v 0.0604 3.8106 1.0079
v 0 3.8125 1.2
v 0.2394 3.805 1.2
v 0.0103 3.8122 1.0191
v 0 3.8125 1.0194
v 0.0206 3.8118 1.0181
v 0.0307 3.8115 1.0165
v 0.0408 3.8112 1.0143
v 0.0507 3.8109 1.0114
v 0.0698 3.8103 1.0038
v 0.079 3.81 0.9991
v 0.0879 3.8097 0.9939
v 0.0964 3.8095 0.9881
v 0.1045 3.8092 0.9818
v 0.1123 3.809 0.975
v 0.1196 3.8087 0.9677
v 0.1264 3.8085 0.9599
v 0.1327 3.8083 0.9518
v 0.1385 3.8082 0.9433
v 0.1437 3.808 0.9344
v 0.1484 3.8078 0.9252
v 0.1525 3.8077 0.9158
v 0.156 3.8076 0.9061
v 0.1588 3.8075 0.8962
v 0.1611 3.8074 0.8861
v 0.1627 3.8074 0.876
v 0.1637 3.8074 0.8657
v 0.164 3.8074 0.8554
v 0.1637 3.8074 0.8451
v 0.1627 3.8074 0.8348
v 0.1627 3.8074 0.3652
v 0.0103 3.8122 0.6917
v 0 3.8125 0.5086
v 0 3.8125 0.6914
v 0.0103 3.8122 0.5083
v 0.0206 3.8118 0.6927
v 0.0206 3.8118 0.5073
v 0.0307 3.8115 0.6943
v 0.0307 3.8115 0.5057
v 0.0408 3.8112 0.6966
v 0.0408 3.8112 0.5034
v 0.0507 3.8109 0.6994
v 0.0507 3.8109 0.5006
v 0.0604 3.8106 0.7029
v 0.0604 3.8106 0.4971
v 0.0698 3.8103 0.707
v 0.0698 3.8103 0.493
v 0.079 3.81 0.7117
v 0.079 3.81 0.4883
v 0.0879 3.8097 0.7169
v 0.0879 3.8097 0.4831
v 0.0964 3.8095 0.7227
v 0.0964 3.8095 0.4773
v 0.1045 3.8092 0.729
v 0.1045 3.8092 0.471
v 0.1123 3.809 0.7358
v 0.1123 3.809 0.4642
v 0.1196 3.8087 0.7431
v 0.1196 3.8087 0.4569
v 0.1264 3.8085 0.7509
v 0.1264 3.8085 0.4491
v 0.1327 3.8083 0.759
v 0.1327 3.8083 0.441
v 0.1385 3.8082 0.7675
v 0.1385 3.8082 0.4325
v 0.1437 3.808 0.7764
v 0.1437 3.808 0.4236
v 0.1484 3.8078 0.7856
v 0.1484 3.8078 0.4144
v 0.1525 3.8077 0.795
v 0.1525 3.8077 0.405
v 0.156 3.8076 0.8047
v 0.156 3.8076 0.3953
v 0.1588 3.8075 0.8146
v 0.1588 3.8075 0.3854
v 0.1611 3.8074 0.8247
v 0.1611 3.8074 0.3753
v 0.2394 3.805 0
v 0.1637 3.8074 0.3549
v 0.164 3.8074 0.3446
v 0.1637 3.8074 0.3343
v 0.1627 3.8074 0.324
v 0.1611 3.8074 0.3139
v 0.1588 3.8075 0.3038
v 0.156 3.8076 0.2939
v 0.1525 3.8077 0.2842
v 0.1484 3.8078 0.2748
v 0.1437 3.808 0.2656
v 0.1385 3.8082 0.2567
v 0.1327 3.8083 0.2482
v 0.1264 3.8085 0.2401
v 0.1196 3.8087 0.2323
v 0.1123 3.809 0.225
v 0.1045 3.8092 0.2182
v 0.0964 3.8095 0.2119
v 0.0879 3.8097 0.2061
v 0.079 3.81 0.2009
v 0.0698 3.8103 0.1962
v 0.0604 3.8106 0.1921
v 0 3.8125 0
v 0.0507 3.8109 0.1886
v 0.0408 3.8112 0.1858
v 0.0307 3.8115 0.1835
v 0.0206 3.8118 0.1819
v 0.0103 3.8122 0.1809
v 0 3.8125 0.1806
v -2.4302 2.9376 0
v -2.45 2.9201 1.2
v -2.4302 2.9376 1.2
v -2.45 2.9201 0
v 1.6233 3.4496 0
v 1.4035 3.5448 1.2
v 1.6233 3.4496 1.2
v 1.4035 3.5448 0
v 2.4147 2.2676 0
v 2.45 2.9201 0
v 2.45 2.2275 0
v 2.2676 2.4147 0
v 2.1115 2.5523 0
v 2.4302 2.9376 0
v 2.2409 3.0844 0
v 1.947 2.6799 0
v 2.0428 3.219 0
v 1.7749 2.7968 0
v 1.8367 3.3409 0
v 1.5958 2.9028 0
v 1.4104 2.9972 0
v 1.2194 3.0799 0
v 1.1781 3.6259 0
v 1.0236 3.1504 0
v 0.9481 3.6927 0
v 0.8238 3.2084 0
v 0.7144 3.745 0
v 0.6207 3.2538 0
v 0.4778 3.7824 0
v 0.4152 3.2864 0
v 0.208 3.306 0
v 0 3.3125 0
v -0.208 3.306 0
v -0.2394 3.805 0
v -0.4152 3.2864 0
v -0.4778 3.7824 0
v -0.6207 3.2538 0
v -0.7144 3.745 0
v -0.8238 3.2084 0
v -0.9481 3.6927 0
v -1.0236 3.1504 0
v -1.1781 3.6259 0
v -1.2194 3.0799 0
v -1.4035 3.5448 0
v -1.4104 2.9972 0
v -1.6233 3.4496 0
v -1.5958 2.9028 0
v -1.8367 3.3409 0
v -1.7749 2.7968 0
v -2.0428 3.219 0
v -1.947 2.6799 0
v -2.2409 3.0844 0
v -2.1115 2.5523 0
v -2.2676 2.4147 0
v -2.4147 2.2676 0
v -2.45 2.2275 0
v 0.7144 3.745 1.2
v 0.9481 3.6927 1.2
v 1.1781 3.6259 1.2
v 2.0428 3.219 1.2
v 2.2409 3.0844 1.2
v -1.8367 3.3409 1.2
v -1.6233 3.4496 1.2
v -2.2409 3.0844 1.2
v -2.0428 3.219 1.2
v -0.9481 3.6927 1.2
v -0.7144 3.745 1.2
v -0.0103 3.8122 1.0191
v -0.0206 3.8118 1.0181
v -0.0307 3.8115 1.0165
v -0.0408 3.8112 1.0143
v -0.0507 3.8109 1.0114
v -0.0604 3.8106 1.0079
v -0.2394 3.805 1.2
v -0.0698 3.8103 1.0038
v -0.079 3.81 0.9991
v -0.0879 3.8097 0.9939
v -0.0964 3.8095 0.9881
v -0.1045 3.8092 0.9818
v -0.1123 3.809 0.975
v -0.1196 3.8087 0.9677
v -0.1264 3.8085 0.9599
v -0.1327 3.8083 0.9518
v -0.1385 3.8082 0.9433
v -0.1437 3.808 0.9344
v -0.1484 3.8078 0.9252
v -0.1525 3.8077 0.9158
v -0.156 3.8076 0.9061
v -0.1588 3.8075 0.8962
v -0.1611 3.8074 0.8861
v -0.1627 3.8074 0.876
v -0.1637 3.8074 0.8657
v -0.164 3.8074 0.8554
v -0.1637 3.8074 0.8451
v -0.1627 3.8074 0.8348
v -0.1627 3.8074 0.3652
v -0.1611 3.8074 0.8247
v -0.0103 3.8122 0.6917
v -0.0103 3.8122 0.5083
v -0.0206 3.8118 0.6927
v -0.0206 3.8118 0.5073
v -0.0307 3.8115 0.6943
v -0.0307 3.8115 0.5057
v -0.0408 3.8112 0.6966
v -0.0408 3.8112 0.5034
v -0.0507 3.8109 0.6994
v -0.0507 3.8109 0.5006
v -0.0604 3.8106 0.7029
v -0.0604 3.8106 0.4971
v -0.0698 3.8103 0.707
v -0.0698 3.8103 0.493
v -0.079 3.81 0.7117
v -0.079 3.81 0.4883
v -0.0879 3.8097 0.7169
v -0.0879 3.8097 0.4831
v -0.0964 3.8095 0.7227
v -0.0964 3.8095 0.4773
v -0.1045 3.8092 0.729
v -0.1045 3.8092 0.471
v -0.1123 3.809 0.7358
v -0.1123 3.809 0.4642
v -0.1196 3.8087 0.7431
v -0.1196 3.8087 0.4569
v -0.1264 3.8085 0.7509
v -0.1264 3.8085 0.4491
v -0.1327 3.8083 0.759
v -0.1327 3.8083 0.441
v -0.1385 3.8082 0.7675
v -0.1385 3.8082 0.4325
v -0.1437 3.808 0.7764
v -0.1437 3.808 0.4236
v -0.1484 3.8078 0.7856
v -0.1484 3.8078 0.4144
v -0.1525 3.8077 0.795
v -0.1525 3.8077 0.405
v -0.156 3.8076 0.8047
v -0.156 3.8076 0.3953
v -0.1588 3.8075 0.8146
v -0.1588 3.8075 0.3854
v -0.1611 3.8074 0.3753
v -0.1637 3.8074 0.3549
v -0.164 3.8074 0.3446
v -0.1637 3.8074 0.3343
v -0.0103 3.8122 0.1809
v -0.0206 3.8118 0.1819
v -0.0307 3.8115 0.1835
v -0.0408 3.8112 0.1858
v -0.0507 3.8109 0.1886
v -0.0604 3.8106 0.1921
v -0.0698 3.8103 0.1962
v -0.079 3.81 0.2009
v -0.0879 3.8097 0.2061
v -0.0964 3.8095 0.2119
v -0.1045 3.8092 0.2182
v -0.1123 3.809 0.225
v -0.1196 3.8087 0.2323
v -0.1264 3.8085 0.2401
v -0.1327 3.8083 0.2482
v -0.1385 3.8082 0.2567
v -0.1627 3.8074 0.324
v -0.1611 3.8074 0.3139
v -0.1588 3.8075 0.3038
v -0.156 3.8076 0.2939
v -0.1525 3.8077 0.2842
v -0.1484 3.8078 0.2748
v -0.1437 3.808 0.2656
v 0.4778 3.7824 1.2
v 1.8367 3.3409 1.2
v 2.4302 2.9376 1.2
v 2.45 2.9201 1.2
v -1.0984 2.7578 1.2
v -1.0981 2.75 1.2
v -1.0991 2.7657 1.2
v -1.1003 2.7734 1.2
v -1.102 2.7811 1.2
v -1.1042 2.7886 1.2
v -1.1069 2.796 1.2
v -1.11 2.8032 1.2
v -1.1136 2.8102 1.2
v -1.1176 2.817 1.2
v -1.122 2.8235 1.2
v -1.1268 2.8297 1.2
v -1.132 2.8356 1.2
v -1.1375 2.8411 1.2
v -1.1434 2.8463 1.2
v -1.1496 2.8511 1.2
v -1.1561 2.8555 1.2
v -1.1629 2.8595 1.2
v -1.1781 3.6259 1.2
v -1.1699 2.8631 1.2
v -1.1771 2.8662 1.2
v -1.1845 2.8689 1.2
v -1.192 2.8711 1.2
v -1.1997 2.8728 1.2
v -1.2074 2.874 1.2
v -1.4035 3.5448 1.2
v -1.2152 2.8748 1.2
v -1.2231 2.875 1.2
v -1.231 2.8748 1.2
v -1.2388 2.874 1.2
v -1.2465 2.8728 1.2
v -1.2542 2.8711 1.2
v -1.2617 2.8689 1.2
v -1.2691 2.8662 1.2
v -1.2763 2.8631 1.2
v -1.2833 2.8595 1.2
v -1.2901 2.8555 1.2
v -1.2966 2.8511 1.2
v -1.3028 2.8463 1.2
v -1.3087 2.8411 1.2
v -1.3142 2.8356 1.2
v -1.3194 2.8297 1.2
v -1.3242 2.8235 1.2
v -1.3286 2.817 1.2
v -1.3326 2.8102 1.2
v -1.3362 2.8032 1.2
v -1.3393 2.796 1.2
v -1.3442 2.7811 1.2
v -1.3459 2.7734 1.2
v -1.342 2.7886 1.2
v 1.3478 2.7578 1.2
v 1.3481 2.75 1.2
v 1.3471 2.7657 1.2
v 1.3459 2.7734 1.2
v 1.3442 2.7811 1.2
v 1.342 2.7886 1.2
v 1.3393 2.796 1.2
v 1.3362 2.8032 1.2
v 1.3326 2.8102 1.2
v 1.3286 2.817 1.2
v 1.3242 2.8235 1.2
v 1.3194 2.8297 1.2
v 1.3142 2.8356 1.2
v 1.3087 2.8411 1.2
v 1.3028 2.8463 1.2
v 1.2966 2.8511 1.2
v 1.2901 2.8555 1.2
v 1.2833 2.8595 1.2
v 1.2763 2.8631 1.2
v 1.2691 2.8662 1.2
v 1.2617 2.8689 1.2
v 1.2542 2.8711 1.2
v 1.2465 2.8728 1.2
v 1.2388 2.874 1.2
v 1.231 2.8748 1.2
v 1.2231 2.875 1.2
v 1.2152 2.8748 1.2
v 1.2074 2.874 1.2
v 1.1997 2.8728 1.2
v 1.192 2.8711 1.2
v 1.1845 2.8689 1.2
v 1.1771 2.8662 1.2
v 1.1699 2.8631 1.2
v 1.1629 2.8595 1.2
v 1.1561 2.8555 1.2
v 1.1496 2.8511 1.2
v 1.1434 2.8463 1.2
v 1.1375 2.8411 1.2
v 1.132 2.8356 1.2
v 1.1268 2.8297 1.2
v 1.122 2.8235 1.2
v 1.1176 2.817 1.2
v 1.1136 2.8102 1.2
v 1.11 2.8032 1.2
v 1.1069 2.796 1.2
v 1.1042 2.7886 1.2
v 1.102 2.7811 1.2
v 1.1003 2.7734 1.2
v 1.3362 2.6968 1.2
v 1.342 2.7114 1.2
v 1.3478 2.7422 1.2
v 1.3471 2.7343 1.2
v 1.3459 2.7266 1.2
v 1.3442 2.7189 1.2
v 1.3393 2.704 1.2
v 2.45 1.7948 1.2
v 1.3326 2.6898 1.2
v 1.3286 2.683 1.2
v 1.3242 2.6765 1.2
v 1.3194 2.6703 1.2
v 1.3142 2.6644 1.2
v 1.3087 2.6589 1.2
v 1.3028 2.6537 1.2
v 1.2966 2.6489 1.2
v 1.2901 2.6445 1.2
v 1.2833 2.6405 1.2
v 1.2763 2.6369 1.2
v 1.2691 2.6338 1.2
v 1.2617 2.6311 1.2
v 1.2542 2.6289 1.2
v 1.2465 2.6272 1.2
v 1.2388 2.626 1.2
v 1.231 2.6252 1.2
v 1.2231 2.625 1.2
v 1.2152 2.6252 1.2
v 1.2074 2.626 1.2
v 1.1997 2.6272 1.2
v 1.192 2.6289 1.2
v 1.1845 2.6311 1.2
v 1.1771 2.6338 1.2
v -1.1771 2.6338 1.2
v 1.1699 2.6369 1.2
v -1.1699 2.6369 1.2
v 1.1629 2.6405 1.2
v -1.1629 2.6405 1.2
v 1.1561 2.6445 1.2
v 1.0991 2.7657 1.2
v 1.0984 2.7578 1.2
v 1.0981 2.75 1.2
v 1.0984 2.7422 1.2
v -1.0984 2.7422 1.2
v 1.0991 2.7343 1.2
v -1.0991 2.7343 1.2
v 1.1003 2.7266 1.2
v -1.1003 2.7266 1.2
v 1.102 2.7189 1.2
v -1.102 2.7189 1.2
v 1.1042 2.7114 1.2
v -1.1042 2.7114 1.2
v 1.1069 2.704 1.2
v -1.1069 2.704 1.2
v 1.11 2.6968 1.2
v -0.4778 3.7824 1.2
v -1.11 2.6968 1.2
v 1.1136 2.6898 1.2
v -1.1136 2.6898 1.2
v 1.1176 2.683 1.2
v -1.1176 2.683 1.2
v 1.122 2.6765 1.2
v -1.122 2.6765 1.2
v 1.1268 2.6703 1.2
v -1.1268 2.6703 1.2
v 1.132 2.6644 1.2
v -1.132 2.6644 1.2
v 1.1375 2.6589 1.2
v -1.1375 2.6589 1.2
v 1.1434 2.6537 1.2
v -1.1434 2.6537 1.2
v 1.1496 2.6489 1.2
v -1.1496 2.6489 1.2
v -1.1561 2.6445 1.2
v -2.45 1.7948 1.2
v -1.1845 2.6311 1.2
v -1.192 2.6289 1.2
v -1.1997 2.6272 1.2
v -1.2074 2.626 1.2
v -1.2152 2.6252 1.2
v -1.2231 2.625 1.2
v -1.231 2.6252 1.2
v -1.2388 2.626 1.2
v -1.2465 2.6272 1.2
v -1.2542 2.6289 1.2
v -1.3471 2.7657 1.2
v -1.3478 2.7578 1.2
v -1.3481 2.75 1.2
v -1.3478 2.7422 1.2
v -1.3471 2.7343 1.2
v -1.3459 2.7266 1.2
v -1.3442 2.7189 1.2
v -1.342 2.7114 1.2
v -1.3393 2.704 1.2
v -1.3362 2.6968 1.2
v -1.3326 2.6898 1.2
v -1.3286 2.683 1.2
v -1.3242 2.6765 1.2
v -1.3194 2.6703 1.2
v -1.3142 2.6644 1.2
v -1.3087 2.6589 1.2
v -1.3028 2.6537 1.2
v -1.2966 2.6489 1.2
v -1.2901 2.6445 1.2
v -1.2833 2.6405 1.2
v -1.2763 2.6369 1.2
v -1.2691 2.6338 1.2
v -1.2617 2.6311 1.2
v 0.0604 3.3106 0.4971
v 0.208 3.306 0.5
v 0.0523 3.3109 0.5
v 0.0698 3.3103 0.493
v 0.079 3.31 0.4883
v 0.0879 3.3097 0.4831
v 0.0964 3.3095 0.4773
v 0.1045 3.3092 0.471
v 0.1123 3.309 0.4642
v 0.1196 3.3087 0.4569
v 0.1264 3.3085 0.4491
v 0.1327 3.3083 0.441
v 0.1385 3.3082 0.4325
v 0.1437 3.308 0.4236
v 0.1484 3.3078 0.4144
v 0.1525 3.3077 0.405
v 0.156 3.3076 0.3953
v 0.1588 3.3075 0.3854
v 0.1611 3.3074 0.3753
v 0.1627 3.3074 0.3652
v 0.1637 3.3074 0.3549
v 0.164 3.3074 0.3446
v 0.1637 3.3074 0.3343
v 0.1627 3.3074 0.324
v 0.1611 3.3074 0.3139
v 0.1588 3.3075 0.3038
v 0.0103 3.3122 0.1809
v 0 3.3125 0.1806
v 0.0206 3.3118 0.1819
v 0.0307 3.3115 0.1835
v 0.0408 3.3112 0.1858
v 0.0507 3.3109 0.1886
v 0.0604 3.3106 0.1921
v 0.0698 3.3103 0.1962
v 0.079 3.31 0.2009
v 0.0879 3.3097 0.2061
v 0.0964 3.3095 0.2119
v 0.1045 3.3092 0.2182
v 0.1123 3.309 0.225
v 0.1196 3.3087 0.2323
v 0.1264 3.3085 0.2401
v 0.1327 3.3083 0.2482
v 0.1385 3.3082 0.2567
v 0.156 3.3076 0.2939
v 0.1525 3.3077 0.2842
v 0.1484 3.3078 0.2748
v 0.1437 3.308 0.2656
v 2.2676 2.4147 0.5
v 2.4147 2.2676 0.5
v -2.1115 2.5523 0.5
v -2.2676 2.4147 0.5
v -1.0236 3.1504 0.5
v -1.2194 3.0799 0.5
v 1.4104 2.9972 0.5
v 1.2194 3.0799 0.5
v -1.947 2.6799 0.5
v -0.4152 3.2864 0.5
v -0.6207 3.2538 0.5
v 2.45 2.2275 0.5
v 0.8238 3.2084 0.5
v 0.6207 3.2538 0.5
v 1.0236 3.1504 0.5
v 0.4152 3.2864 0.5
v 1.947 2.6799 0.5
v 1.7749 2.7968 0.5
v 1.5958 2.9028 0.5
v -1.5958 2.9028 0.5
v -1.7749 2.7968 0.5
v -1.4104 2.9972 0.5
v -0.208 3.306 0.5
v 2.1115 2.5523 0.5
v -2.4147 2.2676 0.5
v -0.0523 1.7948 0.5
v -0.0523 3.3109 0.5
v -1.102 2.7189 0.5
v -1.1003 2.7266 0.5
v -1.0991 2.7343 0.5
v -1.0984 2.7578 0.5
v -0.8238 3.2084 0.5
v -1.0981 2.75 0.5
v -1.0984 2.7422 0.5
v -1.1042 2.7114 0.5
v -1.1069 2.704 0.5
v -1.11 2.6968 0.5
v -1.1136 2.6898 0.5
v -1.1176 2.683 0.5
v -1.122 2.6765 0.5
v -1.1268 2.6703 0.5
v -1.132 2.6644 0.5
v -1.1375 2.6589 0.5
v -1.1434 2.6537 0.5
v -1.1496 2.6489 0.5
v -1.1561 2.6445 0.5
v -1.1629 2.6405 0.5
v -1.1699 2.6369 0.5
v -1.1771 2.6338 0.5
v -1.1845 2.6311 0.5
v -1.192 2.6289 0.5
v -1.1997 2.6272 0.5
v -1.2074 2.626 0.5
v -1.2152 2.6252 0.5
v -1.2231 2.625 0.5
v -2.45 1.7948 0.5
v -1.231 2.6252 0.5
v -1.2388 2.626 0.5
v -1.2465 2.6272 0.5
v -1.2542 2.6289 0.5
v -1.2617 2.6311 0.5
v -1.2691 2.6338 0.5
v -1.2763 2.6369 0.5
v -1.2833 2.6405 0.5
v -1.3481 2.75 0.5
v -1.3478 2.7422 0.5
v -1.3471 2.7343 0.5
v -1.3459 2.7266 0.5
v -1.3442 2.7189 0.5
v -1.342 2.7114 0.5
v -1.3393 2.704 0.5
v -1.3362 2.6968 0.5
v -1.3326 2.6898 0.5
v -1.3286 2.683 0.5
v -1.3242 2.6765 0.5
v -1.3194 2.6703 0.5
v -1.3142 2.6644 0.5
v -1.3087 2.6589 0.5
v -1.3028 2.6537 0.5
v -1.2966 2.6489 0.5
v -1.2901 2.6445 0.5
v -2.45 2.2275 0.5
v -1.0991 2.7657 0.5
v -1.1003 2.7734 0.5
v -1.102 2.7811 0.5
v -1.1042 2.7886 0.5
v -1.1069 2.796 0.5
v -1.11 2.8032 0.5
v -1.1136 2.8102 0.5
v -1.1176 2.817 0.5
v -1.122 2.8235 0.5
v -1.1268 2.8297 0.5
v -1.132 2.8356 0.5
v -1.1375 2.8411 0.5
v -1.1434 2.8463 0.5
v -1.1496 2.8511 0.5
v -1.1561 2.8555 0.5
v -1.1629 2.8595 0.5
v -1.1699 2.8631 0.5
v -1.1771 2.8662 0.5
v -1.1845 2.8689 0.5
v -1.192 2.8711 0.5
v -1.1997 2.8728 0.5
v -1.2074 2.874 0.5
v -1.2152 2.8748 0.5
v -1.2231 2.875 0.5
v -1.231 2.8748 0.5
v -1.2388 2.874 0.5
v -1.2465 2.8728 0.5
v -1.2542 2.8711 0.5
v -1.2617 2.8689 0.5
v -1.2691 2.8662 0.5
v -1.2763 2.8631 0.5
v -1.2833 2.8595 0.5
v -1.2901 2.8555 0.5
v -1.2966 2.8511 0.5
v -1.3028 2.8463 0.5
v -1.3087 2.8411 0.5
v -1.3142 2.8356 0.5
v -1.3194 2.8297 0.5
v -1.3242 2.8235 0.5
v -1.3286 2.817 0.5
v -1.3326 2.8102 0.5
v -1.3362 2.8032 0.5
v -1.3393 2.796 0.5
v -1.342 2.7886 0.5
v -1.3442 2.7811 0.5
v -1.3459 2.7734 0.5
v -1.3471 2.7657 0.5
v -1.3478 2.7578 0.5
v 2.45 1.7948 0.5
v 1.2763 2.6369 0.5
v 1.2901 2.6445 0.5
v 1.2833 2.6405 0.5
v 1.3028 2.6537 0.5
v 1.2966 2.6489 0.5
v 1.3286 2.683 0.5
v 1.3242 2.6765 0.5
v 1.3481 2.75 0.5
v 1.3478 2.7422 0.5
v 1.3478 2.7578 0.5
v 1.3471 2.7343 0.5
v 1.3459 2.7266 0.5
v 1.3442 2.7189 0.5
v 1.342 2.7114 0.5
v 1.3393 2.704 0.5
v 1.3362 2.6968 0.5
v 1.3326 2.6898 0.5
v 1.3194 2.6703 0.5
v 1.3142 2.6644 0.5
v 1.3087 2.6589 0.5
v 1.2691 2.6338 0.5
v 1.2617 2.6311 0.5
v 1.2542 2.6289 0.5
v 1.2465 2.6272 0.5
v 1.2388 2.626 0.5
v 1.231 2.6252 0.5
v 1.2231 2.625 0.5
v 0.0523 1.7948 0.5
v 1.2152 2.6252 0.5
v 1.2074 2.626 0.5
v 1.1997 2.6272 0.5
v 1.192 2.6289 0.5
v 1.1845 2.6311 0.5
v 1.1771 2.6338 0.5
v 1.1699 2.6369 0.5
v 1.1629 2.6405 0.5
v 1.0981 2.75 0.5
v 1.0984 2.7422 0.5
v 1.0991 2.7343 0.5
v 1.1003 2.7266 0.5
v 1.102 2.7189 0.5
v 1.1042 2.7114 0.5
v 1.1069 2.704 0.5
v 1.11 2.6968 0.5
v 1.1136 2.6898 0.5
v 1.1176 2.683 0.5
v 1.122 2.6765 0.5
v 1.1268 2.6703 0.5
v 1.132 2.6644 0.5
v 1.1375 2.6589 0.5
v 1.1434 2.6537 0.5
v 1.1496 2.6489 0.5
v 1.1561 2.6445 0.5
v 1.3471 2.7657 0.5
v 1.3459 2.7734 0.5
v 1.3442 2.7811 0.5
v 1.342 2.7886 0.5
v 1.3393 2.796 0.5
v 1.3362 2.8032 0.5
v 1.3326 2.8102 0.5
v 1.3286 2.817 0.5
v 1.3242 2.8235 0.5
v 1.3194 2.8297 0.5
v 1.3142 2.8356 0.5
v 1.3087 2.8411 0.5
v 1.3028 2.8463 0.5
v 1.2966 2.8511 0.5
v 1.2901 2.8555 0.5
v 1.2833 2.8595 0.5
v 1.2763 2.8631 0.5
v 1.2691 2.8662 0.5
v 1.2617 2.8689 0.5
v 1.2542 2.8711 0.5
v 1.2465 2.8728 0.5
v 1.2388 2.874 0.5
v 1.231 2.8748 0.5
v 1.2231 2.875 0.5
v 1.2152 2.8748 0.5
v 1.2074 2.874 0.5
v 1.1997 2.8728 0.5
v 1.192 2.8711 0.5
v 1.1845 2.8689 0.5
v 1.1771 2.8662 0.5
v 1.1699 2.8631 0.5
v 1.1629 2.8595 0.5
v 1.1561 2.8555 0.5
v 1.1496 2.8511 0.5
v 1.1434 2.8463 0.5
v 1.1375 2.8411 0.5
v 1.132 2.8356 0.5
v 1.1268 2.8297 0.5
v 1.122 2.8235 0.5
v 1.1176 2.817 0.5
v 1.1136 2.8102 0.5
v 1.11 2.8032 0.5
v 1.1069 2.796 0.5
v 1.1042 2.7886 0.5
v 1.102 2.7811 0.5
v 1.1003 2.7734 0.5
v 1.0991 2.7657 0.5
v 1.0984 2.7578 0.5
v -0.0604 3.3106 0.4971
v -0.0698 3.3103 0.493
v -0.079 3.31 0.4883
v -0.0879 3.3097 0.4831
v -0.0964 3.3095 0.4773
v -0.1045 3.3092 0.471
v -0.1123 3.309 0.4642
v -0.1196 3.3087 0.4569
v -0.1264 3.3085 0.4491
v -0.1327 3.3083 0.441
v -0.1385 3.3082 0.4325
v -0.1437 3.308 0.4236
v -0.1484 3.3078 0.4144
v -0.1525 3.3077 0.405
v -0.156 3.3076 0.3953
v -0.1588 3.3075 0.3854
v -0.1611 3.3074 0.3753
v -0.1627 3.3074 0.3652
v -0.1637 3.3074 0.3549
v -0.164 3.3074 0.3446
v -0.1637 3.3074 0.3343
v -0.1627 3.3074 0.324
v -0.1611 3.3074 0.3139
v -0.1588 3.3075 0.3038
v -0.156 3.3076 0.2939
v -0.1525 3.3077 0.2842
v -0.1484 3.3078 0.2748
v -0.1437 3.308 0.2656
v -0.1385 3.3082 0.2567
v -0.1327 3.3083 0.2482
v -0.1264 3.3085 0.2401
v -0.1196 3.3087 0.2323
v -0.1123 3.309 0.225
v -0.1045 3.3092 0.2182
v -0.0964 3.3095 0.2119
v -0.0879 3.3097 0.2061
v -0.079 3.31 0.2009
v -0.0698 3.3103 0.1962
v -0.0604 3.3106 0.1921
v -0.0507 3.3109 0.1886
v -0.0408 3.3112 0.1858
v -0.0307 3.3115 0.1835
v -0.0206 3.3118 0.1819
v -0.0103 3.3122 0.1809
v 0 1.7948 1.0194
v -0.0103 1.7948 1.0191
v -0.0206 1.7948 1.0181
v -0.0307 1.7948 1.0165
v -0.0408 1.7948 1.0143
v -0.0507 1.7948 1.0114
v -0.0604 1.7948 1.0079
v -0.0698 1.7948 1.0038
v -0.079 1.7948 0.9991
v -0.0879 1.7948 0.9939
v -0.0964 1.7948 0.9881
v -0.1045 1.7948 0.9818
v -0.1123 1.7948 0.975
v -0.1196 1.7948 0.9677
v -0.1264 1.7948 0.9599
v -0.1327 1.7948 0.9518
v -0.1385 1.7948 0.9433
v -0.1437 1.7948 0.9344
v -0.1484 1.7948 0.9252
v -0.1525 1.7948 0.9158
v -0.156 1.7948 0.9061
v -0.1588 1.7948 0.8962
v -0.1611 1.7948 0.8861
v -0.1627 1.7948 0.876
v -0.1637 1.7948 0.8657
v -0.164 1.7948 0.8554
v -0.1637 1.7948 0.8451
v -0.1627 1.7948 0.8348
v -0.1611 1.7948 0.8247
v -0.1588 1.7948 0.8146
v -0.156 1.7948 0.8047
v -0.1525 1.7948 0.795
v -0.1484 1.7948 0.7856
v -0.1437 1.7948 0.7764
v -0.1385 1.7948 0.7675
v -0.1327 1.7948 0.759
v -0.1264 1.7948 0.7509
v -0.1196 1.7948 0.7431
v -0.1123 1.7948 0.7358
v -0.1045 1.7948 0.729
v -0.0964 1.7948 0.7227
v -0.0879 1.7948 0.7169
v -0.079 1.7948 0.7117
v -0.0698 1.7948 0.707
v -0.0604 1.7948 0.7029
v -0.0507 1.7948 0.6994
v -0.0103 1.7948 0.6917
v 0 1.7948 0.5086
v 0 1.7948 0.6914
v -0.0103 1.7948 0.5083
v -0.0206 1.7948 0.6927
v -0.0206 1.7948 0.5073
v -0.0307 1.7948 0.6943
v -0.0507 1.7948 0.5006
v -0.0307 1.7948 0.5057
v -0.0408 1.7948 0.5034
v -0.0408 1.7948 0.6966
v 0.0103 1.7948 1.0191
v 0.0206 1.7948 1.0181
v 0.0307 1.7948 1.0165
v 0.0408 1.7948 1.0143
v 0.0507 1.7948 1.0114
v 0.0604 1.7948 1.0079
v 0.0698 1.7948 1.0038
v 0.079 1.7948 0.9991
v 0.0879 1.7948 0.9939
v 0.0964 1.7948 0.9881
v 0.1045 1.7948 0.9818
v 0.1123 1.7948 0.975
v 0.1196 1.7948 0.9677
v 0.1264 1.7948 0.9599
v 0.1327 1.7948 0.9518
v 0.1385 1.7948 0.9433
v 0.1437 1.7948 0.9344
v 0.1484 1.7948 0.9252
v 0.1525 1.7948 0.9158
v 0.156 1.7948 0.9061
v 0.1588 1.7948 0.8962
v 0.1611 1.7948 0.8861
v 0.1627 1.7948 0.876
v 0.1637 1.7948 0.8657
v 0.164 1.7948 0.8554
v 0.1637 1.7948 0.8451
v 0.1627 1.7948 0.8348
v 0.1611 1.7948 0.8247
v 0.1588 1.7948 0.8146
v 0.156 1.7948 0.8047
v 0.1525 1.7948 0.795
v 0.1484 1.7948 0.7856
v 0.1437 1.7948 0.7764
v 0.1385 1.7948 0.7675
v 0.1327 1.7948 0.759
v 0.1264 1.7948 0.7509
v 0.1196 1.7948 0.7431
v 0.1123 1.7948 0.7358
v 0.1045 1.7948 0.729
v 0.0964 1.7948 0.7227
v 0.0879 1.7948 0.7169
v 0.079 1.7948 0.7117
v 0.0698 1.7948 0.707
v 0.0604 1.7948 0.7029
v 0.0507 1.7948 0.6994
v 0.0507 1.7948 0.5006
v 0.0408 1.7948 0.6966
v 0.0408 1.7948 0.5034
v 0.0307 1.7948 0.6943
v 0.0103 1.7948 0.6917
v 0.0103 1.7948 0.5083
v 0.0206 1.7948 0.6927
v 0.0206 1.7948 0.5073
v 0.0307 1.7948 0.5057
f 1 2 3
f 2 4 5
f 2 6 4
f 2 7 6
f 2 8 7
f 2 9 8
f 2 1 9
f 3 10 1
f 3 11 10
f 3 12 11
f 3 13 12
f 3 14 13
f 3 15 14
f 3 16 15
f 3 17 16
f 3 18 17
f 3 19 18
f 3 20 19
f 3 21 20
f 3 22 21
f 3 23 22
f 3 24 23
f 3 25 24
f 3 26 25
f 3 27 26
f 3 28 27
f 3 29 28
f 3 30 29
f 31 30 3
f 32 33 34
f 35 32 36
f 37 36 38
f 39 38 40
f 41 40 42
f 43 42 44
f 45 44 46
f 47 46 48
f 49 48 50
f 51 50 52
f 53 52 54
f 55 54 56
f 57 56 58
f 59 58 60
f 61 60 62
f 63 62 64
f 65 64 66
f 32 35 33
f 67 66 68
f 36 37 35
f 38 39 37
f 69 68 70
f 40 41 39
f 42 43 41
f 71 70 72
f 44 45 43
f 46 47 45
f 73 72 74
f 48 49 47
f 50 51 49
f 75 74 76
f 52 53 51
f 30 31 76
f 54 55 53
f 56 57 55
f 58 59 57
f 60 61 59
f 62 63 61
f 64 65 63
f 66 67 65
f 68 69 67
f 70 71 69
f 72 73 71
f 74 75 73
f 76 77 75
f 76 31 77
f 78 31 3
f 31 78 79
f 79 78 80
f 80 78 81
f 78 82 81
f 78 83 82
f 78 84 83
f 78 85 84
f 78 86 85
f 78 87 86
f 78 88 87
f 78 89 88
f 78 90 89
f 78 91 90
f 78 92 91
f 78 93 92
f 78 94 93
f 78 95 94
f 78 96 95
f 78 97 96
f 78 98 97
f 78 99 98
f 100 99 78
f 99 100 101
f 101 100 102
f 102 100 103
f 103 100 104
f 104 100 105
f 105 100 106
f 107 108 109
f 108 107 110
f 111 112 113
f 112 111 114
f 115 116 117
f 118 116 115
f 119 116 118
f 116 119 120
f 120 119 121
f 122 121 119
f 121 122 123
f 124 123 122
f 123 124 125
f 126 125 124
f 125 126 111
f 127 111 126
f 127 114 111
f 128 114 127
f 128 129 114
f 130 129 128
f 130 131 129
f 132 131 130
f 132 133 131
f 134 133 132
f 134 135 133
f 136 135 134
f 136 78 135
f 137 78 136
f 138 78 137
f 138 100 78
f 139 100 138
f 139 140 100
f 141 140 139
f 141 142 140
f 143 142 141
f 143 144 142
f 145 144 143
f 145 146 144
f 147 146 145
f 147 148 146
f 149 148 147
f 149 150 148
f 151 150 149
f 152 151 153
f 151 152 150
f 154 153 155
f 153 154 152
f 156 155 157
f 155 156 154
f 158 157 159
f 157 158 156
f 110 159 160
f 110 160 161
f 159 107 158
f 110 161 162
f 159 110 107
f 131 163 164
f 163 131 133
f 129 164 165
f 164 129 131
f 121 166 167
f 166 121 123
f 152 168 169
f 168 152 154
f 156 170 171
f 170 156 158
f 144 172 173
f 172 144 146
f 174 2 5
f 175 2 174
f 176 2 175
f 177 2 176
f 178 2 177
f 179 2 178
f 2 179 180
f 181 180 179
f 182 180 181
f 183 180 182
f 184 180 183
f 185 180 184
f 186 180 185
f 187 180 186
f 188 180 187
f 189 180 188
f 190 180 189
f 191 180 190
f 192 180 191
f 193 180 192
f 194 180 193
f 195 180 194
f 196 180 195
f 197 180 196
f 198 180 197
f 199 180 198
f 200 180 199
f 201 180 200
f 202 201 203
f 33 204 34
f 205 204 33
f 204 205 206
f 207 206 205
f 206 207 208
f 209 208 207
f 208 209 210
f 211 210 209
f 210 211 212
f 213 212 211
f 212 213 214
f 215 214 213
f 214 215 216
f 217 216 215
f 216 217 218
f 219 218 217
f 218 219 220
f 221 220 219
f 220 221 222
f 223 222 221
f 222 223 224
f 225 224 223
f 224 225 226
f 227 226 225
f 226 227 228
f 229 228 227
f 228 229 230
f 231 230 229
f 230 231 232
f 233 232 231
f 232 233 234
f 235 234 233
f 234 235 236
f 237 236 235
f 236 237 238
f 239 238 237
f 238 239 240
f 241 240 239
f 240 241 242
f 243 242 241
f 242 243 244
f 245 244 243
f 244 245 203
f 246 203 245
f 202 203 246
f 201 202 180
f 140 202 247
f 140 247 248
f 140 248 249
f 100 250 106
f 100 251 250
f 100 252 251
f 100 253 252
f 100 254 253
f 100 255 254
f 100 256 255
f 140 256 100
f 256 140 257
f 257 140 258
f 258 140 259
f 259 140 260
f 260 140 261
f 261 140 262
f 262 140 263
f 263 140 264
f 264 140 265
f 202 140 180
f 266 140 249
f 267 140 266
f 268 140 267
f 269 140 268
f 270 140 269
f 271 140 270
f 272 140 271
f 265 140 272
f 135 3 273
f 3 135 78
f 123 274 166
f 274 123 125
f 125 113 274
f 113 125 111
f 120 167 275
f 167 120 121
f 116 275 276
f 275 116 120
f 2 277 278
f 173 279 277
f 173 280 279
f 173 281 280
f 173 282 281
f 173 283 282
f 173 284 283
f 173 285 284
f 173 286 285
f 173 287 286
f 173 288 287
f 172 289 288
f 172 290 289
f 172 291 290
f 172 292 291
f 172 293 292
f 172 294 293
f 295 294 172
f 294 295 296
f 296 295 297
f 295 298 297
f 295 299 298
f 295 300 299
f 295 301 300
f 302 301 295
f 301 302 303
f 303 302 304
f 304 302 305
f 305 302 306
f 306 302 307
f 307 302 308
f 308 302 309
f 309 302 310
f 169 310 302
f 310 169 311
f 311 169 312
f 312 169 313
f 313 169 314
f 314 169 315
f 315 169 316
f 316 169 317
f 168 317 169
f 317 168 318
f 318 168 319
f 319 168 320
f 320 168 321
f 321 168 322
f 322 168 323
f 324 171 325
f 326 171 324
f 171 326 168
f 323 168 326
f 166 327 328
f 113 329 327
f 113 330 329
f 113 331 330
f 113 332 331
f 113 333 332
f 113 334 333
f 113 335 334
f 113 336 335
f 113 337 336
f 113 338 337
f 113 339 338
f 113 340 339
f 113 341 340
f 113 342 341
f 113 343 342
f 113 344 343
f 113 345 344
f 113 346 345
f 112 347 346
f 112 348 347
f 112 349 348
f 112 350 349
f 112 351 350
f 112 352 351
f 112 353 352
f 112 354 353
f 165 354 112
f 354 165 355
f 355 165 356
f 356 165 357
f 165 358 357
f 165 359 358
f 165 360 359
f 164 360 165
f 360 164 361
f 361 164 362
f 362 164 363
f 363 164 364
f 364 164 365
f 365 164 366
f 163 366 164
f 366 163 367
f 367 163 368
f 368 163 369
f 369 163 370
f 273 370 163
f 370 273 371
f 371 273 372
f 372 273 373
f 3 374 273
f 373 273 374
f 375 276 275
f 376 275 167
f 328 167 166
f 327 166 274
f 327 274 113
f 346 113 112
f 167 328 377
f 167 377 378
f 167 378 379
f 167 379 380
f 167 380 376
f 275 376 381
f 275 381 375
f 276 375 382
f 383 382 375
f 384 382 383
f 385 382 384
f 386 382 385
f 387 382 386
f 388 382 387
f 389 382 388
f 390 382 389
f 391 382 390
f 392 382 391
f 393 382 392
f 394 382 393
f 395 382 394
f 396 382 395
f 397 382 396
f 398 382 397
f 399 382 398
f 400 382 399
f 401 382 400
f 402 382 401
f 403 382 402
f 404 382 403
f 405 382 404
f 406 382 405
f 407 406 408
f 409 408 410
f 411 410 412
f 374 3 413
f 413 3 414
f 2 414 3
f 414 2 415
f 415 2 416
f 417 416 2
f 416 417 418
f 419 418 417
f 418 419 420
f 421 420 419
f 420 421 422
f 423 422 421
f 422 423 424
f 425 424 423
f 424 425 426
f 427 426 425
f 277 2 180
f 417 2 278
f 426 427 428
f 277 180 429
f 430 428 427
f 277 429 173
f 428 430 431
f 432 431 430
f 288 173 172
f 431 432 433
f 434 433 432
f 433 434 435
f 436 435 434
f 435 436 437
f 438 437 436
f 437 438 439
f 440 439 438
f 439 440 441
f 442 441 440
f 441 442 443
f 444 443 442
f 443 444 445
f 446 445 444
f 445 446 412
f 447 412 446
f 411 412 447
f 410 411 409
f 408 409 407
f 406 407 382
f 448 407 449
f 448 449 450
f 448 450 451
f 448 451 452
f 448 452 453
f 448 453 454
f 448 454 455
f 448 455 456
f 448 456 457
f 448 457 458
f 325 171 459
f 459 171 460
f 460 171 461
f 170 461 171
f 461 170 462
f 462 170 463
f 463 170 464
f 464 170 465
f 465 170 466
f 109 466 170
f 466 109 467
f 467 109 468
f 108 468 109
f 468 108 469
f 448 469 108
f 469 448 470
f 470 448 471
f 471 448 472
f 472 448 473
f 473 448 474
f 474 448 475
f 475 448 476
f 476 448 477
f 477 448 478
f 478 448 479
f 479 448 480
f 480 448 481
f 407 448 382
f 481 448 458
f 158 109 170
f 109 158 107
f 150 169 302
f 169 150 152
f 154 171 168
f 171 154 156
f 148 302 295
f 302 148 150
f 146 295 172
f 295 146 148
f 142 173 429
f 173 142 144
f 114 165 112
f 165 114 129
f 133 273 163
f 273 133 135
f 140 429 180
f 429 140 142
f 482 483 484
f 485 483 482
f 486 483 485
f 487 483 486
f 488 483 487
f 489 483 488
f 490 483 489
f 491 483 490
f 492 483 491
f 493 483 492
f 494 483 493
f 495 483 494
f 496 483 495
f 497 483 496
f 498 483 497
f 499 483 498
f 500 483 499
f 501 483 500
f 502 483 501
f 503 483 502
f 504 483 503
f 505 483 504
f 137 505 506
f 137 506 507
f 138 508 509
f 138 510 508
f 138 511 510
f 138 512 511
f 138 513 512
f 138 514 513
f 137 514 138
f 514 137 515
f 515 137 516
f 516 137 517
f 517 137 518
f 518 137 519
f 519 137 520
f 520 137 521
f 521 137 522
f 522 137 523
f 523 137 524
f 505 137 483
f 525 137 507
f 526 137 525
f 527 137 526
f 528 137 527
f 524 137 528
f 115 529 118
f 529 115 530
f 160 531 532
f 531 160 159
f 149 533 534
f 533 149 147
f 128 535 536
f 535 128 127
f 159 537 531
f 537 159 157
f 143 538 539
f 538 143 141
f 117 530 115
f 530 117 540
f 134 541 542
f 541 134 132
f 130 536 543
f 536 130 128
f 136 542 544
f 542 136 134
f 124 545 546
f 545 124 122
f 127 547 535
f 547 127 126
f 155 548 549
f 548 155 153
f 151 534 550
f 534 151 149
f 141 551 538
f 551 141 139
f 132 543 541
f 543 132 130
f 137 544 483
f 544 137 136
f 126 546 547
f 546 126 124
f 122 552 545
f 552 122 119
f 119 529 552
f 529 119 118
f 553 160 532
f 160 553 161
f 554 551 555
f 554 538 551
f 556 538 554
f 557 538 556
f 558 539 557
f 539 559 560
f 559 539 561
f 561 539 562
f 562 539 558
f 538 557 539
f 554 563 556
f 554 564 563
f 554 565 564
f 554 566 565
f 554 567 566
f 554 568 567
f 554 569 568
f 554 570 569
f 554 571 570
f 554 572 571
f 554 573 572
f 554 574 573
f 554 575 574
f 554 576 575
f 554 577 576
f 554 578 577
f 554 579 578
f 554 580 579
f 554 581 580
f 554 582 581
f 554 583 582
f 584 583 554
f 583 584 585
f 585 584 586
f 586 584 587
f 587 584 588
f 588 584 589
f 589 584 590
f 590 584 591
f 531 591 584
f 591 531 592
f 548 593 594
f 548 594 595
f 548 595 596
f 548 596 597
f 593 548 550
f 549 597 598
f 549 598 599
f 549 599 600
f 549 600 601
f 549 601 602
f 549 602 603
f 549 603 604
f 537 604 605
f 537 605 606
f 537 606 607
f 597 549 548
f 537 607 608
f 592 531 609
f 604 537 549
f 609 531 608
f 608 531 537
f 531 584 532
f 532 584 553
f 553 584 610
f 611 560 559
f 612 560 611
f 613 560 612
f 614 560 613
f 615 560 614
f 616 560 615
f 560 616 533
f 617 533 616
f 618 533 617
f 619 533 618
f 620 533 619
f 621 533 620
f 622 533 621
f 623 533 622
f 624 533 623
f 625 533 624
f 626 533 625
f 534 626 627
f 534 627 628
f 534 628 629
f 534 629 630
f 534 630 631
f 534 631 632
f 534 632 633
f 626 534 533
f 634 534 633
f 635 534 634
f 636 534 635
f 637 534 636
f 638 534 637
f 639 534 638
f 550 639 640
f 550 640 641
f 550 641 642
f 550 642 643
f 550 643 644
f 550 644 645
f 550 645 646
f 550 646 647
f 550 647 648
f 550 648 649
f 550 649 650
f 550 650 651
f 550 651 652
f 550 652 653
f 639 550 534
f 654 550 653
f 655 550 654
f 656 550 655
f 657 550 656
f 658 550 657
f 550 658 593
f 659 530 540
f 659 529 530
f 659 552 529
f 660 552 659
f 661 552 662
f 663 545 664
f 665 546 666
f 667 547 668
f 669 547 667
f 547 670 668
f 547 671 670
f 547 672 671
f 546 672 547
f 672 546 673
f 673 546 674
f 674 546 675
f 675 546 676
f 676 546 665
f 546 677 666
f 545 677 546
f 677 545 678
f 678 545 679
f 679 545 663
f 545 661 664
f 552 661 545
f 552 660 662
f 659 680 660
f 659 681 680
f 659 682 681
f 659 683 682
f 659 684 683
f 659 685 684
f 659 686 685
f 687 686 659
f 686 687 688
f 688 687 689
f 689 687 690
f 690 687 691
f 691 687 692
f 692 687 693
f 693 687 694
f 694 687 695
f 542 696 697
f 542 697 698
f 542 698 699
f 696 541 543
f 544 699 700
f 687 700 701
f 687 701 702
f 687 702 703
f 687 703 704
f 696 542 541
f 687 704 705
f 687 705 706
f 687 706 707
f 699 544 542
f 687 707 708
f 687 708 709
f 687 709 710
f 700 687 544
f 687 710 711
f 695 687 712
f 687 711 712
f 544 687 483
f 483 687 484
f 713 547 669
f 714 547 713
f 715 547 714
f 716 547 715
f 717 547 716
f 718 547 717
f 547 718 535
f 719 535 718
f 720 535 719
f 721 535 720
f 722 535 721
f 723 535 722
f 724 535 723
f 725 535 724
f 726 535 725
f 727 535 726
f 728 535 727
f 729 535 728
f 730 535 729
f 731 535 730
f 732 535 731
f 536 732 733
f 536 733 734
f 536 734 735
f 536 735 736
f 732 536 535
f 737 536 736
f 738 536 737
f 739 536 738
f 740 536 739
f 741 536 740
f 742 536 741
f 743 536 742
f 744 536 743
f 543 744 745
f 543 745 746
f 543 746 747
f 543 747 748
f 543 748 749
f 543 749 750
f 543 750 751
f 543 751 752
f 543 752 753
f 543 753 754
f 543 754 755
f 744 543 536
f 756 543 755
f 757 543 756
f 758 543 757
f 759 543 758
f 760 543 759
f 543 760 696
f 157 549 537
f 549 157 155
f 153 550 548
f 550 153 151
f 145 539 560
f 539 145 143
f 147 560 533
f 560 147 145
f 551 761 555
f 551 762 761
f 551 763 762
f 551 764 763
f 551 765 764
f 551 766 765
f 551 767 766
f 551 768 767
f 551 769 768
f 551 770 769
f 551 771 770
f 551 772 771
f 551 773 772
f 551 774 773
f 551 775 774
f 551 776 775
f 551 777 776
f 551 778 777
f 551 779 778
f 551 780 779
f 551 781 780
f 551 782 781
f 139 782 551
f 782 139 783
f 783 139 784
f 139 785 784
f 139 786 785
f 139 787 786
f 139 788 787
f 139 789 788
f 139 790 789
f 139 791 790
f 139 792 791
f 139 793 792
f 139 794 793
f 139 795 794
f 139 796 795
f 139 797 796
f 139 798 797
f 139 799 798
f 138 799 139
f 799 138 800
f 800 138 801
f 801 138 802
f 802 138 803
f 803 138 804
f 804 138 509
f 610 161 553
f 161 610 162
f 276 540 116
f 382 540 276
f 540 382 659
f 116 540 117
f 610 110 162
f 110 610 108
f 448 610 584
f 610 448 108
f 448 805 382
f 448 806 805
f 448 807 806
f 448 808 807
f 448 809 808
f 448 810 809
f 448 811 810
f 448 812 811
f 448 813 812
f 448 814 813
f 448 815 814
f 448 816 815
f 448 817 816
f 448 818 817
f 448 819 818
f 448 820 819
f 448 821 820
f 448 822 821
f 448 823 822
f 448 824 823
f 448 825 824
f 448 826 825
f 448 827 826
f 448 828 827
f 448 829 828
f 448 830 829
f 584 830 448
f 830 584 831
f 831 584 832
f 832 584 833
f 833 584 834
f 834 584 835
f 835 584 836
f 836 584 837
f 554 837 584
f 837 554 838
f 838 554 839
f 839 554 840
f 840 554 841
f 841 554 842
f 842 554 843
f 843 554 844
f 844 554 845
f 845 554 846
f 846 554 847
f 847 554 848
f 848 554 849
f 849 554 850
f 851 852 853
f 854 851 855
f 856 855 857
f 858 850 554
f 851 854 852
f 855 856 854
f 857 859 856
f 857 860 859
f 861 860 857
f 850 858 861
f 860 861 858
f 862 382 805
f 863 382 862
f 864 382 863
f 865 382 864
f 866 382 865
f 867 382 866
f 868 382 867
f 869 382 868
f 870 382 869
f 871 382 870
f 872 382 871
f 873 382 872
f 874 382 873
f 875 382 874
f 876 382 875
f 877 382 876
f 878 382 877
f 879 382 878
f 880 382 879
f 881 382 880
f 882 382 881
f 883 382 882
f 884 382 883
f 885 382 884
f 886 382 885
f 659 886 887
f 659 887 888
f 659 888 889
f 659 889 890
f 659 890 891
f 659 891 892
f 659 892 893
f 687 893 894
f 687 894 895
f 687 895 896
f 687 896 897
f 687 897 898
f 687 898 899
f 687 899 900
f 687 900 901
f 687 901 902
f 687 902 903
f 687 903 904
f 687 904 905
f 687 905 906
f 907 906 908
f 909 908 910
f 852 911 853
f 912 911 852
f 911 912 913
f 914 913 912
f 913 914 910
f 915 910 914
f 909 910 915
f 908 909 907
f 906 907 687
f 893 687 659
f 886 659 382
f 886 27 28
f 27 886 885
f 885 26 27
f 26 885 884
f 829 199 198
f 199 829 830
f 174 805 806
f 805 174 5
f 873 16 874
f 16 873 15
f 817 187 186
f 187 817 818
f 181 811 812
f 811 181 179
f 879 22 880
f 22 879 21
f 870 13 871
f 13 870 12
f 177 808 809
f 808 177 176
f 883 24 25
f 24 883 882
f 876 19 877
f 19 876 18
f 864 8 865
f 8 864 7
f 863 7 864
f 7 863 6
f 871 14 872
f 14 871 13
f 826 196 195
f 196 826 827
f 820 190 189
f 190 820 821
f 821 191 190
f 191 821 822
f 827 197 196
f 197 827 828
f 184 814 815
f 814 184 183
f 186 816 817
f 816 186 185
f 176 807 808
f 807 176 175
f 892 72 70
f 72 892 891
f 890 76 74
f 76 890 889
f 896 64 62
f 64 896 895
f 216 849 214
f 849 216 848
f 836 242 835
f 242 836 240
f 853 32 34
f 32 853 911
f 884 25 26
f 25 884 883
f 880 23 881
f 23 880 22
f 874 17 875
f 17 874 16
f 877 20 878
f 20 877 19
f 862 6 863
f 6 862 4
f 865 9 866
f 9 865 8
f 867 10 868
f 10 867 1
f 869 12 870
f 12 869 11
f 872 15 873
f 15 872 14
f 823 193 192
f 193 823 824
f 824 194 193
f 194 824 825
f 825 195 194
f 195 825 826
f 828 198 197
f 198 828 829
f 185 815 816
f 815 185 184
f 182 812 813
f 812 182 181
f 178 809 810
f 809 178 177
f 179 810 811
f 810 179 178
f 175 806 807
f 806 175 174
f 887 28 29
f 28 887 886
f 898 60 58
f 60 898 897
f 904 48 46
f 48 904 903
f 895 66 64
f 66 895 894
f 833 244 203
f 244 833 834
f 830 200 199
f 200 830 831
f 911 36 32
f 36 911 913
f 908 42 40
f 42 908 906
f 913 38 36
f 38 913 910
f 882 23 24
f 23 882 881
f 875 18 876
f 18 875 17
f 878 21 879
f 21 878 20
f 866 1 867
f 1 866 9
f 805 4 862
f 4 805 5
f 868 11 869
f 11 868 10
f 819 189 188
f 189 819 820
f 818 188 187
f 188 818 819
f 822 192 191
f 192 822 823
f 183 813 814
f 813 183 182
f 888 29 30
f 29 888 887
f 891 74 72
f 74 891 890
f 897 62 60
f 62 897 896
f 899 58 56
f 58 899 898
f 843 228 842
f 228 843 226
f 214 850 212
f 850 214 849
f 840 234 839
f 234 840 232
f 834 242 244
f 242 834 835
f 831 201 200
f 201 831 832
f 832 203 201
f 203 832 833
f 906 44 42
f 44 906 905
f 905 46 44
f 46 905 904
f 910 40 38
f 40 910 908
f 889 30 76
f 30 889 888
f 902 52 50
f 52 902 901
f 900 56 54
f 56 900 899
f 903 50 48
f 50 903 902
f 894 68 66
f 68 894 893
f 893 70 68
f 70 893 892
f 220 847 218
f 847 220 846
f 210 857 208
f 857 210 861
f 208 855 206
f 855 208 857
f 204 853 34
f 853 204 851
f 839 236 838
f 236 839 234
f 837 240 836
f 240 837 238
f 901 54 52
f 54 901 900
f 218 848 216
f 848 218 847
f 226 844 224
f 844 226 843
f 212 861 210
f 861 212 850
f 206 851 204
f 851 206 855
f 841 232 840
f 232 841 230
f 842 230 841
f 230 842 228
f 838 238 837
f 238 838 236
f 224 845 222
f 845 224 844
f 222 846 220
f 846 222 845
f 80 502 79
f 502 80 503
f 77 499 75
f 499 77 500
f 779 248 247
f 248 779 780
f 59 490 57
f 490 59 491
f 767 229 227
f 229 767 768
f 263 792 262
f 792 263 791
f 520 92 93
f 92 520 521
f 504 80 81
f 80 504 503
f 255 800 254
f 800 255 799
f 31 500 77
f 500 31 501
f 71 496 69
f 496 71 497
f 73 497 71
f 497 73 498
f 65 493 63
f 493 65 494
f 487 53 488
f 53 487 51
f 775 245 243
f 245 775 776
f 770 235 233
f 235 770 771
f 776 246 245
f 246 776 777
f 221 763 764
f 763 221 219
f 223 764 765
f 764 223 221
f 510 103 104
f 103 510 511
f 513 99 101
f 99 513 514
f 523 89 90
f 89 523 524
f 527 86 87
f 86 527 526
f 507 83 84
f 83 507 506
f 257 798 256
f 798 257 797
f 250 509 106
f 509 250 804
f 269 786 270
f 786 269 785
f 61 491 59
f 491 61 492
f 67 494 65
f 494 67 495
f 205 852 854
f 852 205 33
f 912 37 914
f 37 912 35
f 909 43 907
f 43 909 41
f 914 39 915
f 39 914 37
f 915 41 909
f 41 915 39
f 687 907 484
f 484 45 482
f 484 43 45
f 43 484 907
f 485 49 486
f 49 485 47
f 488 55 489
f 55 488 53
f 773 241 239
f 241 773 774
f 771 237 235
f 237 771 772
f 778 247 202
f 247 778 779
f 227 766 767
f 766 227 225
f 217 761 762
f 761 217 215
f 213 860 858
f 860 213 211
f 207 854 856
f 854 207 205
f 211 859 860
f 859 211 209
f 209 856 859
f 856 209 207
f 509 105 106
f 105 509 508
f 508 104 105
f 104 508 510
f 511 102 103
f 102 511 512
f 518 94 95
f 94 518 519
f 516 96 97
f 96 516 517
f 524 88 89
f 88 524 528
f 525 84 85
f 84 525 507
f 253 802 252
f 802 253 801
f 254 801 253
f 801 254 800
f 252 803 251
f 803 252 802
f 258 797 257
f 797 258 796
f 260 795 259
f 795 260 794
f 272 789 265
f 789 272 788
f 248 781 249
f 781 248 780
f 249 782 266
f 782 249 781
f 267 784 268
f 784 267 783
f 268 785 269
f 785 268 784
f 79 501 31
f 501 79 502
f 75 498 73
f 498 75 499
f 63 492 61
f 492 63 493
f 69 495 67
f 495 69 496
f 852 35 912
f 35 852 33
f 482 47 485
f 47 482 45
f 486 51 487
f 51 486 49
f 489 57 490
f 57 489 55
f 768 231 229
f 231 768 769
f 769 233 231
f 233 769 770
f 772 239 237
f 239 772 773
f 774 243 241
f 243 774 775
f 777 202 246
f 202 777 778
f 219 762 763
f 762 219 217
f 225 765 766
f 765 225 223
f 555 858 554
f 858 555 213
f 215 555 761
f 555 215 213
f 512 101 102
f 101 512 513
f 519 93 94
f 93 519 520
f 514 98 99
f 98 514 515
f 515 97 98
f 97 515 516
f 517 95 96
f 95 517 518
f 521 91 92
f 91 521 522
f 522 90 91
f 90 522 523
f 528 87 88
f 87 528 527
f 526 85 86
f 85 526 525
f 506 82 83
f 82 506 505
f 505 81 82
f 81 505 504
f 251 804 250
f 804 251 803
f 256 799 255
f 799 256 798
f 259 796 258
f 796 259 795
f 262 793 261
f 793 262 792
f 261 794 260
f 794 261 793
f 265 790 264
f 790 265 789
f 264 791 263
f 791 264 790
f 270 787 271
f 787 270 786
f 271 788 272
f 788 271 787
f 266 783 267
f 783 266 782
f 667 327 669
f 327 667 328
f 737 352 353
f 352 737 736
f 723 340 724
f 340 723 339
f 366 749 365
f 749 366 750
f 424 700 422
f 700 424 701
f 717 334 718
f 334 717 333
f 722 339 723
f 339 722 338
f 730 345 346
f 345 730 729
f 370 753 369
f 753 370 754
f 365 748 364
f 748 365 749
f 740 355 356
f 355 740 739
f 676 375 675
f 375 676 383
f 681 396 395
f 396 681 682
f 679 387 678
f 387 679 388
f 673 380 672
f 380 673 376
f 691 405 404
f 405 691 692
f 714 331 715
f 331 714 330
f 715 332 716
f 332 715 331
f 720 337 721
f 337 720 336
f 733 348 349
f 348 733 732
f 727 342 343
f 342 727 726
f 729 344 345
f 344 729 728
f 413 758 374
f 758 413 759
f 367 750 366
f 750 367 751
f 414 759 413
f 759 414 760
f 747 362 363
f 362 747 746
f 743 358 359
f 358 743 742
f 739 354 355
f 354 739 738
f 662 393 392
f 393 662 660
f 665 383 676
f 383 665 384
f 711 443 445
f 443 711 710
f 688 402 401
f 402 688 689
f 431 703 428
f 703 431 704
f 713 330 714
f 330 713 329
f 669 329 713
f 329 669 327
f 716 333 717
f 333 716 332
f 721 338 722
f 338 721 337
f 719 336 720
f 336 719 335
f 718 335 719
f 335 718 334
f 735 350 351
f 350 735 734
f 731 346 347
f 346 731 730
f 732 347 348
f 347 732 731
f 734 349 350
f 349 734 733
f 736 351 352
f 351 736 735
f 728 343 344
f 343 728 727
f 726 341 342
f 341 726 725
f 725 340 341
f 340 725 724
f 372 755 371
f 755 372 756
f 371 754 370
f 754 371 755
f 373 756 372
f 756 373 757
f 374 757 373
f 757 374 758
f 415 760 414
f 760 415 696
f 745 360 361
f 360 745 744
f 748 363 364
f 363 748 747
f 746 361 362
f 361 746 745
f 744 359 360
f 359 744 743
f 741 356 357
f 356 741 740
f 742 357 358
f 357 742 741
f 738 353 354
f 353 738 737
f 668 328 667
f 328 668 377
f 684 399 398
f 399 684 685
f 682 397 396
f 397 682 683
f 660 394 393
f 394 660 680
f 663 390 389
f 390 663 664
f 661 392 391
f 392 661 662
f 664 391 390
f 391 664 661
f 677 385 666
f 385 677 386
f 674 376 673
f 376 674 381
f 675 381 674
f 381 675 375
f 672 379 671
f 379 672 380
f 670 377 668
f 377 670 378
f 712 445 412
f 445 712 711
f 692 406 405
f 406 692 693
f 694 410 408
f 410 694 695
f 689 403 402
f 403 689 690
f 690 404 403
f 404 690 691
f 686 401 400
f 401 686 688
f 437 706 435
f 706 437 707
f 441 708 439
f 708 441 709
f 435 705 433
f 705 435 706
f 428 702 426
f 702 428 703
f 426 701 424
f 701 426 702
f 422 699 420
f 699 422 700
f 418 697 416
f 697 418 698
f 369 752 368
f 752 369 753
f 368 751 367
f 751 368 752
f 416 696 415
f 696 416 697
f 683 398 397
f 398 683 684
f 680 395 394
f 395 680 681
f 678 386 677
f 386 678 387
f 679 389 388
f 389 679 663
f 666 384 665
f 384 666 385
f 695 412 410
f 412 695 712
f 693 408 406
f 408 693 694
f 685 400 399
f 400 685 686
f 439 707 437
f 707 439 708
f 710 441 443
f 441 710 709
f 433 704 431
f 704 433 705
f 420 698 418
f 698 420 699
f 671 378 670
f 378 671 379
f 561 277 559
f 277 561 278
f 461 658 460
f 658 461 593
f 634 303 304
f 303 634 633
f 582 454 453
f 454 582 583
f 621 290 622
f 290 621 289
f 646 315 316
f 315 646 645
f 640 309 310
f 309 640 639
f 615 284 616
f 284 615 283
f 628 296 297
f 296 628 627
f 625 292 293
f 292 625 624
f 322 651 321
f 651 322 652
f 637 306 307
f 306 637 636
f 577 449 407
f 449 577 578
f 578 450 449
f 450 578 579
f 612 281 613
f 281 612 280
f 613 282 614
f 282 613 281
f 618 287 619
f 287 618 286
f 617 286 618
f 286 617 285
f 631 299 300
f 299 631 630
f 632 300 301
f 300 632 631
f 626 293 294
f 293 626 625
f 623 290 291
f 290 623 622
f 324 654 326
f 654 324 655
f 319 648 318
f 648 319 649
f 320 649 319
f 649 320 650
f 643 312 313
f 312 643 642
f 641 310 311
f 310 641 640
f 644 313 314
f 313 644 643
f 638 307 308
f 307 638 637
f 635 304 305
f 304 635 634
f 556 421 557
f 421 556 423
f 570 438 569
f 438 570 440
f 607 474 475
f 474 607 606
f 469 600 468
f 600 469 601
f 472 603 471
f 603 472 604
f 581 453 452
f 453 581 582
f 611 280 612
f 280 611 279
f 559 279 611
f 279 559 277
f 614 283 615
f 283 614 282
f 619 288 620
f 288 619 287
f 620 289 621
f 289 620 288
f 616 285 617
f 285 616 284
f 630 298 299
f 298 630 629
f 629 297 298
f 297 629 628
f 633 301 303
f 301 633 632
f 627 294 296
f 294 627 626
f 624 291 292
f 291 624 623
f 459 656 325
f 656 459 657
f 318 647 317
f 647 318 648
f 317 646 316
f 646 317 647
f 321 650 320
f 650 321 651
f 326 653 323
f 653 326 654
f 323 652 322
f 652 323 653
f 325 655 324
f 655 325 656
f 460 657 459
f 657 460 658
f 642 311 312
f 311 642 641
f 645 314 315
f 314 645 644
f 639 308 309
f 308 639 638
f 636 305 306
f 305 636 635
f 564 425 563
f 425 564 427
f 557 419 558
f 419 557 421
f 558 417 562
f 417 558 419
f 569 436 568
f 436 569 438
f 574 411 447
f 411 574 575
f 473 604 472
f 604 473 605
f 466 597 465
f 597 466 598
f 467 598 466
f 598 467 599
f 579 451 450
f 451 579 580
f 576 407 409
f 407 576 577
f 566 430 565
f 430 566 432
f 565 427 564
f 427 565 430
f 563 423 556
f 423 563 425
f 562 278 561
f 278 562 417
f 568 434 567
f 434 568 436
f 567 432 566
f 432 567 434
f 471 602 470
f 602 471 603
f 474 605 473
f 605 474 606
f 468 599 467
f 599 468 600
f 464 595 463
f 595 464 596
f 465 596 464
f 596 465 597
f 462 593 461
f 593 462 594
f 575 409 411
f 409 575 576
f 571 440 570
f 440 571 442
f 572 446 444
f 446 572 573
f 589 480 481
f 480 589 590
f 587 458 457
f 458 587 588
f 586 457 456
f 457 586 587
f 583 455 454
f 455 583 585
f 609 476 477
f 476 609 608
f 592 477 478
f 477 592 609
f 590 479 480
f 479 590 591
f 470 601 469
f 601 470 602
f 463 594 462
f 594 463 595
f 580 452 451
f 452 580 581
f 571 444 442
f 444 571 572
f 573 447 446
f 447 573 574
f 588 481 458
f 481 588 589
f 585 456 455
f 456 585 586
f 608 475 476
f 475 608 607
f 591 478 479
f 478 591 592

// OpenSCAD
/*

    aim_platform_down.scad is the code to generate the 3D lower
    platform for the Pro-aim adjustable wedge.
    
    Copyright (C) 2019  C.Y. Tan
    Contact: cytan299@yahoo.com

    This file is part of the aiming device distribution

    aim_platform_down.scad is free software: you can redistribute it
    and/or modify it under the terms of the GNU General Public License
    as published by the Free Software Foundation, either version 3 of
    the License, or (at your option) any later version.

    aim_platform_down.scad is distributed in the hope that it will be
    useful, but WITHOUT ANY WARRANTY; without even the implied
    warranty of MERCHANTABILITY or FITNESS FOR A PARTICULAR PURPOSE.
    See the GNU General Public License for more details.

    You should have received a copy of the GNU General Public License
    along with aim_platform_down.scad.  If not, see
    <http://www.gnu.org/licenses/>.

*/

$fn=100;

mm2inch = 1/25.4;

// dimensions are in inches

// constants

// cylindrical wall
OUTER_R = 3.8125;
INNER_R = 3.3125;
WALL_H = 0.7+0.5;
DH = 0.7;

// the size of the PROAIM device
A_L = 8.25;
A_W = 4.9;

//screw holes

// hole on the wall
SCREW_R16 = 0.328/2.0; // average radius of hole for thermal 1/4-20 threaded insert
SCREW_R16_AZ = 0.8554; // aiming hole
SCREW_R16_Z = 0.3446;  // hole for threaded insert


// holes on the base
SCREW_R4 = 0.25/2.0; // 1/4" hole
SCREW_R4_X = 1.2231;
SCREW_R4_Y = 2.75;


module make_base()
{
  difference(){
    // round part of the wall
    cylinder(h = WALL_H, r = OUTER_R);
    
    translate([0, 0, -DH]){
      cylinder(h = WALL_H, r = INNER_R);
    }


    // trim off the sides
    L = 10;
    translate([A_W/2, -L/2, -L/2]){
      cube(L, center=false);
    }

    translate([-L-A_W/2, -L/2, -L/2]){
      cube(L, center=false);
    }

    // and then remove the bottom rounds
    translate([-L/2, -L+1.7948, -L/2]){
      cube(L, center=false);
    }

  }
}



difference(){
  // make the solid parts first
  make_base();

  // then make the screw holes

  // the aiming hole on the wall
  translate([0,0,SCREW_R16_AZ]){
    rotate([90,0,0]){
      cylinder(h=10, r=SCREW_R16, center=true);
    }
  }

  // the threaded hole on the wall
  translate([0,0,SCREW_R16_Z]){
    rotate([90,0,0]){
      cylinder(h=10, r=SCREW_R16, center=true);
    }
  }


  // make the holes 
  translate([SCREW_R4_X, SCREW_R4_Y, 0]){
    cylinder(h=10, r=SCREW_R4, center=true);
  }

  translate([-SCREW_R4_X, SCREW_R4_Y, 0]){
    cylinder(h=10, r=SCREW_R4, center=true);
  }


}
